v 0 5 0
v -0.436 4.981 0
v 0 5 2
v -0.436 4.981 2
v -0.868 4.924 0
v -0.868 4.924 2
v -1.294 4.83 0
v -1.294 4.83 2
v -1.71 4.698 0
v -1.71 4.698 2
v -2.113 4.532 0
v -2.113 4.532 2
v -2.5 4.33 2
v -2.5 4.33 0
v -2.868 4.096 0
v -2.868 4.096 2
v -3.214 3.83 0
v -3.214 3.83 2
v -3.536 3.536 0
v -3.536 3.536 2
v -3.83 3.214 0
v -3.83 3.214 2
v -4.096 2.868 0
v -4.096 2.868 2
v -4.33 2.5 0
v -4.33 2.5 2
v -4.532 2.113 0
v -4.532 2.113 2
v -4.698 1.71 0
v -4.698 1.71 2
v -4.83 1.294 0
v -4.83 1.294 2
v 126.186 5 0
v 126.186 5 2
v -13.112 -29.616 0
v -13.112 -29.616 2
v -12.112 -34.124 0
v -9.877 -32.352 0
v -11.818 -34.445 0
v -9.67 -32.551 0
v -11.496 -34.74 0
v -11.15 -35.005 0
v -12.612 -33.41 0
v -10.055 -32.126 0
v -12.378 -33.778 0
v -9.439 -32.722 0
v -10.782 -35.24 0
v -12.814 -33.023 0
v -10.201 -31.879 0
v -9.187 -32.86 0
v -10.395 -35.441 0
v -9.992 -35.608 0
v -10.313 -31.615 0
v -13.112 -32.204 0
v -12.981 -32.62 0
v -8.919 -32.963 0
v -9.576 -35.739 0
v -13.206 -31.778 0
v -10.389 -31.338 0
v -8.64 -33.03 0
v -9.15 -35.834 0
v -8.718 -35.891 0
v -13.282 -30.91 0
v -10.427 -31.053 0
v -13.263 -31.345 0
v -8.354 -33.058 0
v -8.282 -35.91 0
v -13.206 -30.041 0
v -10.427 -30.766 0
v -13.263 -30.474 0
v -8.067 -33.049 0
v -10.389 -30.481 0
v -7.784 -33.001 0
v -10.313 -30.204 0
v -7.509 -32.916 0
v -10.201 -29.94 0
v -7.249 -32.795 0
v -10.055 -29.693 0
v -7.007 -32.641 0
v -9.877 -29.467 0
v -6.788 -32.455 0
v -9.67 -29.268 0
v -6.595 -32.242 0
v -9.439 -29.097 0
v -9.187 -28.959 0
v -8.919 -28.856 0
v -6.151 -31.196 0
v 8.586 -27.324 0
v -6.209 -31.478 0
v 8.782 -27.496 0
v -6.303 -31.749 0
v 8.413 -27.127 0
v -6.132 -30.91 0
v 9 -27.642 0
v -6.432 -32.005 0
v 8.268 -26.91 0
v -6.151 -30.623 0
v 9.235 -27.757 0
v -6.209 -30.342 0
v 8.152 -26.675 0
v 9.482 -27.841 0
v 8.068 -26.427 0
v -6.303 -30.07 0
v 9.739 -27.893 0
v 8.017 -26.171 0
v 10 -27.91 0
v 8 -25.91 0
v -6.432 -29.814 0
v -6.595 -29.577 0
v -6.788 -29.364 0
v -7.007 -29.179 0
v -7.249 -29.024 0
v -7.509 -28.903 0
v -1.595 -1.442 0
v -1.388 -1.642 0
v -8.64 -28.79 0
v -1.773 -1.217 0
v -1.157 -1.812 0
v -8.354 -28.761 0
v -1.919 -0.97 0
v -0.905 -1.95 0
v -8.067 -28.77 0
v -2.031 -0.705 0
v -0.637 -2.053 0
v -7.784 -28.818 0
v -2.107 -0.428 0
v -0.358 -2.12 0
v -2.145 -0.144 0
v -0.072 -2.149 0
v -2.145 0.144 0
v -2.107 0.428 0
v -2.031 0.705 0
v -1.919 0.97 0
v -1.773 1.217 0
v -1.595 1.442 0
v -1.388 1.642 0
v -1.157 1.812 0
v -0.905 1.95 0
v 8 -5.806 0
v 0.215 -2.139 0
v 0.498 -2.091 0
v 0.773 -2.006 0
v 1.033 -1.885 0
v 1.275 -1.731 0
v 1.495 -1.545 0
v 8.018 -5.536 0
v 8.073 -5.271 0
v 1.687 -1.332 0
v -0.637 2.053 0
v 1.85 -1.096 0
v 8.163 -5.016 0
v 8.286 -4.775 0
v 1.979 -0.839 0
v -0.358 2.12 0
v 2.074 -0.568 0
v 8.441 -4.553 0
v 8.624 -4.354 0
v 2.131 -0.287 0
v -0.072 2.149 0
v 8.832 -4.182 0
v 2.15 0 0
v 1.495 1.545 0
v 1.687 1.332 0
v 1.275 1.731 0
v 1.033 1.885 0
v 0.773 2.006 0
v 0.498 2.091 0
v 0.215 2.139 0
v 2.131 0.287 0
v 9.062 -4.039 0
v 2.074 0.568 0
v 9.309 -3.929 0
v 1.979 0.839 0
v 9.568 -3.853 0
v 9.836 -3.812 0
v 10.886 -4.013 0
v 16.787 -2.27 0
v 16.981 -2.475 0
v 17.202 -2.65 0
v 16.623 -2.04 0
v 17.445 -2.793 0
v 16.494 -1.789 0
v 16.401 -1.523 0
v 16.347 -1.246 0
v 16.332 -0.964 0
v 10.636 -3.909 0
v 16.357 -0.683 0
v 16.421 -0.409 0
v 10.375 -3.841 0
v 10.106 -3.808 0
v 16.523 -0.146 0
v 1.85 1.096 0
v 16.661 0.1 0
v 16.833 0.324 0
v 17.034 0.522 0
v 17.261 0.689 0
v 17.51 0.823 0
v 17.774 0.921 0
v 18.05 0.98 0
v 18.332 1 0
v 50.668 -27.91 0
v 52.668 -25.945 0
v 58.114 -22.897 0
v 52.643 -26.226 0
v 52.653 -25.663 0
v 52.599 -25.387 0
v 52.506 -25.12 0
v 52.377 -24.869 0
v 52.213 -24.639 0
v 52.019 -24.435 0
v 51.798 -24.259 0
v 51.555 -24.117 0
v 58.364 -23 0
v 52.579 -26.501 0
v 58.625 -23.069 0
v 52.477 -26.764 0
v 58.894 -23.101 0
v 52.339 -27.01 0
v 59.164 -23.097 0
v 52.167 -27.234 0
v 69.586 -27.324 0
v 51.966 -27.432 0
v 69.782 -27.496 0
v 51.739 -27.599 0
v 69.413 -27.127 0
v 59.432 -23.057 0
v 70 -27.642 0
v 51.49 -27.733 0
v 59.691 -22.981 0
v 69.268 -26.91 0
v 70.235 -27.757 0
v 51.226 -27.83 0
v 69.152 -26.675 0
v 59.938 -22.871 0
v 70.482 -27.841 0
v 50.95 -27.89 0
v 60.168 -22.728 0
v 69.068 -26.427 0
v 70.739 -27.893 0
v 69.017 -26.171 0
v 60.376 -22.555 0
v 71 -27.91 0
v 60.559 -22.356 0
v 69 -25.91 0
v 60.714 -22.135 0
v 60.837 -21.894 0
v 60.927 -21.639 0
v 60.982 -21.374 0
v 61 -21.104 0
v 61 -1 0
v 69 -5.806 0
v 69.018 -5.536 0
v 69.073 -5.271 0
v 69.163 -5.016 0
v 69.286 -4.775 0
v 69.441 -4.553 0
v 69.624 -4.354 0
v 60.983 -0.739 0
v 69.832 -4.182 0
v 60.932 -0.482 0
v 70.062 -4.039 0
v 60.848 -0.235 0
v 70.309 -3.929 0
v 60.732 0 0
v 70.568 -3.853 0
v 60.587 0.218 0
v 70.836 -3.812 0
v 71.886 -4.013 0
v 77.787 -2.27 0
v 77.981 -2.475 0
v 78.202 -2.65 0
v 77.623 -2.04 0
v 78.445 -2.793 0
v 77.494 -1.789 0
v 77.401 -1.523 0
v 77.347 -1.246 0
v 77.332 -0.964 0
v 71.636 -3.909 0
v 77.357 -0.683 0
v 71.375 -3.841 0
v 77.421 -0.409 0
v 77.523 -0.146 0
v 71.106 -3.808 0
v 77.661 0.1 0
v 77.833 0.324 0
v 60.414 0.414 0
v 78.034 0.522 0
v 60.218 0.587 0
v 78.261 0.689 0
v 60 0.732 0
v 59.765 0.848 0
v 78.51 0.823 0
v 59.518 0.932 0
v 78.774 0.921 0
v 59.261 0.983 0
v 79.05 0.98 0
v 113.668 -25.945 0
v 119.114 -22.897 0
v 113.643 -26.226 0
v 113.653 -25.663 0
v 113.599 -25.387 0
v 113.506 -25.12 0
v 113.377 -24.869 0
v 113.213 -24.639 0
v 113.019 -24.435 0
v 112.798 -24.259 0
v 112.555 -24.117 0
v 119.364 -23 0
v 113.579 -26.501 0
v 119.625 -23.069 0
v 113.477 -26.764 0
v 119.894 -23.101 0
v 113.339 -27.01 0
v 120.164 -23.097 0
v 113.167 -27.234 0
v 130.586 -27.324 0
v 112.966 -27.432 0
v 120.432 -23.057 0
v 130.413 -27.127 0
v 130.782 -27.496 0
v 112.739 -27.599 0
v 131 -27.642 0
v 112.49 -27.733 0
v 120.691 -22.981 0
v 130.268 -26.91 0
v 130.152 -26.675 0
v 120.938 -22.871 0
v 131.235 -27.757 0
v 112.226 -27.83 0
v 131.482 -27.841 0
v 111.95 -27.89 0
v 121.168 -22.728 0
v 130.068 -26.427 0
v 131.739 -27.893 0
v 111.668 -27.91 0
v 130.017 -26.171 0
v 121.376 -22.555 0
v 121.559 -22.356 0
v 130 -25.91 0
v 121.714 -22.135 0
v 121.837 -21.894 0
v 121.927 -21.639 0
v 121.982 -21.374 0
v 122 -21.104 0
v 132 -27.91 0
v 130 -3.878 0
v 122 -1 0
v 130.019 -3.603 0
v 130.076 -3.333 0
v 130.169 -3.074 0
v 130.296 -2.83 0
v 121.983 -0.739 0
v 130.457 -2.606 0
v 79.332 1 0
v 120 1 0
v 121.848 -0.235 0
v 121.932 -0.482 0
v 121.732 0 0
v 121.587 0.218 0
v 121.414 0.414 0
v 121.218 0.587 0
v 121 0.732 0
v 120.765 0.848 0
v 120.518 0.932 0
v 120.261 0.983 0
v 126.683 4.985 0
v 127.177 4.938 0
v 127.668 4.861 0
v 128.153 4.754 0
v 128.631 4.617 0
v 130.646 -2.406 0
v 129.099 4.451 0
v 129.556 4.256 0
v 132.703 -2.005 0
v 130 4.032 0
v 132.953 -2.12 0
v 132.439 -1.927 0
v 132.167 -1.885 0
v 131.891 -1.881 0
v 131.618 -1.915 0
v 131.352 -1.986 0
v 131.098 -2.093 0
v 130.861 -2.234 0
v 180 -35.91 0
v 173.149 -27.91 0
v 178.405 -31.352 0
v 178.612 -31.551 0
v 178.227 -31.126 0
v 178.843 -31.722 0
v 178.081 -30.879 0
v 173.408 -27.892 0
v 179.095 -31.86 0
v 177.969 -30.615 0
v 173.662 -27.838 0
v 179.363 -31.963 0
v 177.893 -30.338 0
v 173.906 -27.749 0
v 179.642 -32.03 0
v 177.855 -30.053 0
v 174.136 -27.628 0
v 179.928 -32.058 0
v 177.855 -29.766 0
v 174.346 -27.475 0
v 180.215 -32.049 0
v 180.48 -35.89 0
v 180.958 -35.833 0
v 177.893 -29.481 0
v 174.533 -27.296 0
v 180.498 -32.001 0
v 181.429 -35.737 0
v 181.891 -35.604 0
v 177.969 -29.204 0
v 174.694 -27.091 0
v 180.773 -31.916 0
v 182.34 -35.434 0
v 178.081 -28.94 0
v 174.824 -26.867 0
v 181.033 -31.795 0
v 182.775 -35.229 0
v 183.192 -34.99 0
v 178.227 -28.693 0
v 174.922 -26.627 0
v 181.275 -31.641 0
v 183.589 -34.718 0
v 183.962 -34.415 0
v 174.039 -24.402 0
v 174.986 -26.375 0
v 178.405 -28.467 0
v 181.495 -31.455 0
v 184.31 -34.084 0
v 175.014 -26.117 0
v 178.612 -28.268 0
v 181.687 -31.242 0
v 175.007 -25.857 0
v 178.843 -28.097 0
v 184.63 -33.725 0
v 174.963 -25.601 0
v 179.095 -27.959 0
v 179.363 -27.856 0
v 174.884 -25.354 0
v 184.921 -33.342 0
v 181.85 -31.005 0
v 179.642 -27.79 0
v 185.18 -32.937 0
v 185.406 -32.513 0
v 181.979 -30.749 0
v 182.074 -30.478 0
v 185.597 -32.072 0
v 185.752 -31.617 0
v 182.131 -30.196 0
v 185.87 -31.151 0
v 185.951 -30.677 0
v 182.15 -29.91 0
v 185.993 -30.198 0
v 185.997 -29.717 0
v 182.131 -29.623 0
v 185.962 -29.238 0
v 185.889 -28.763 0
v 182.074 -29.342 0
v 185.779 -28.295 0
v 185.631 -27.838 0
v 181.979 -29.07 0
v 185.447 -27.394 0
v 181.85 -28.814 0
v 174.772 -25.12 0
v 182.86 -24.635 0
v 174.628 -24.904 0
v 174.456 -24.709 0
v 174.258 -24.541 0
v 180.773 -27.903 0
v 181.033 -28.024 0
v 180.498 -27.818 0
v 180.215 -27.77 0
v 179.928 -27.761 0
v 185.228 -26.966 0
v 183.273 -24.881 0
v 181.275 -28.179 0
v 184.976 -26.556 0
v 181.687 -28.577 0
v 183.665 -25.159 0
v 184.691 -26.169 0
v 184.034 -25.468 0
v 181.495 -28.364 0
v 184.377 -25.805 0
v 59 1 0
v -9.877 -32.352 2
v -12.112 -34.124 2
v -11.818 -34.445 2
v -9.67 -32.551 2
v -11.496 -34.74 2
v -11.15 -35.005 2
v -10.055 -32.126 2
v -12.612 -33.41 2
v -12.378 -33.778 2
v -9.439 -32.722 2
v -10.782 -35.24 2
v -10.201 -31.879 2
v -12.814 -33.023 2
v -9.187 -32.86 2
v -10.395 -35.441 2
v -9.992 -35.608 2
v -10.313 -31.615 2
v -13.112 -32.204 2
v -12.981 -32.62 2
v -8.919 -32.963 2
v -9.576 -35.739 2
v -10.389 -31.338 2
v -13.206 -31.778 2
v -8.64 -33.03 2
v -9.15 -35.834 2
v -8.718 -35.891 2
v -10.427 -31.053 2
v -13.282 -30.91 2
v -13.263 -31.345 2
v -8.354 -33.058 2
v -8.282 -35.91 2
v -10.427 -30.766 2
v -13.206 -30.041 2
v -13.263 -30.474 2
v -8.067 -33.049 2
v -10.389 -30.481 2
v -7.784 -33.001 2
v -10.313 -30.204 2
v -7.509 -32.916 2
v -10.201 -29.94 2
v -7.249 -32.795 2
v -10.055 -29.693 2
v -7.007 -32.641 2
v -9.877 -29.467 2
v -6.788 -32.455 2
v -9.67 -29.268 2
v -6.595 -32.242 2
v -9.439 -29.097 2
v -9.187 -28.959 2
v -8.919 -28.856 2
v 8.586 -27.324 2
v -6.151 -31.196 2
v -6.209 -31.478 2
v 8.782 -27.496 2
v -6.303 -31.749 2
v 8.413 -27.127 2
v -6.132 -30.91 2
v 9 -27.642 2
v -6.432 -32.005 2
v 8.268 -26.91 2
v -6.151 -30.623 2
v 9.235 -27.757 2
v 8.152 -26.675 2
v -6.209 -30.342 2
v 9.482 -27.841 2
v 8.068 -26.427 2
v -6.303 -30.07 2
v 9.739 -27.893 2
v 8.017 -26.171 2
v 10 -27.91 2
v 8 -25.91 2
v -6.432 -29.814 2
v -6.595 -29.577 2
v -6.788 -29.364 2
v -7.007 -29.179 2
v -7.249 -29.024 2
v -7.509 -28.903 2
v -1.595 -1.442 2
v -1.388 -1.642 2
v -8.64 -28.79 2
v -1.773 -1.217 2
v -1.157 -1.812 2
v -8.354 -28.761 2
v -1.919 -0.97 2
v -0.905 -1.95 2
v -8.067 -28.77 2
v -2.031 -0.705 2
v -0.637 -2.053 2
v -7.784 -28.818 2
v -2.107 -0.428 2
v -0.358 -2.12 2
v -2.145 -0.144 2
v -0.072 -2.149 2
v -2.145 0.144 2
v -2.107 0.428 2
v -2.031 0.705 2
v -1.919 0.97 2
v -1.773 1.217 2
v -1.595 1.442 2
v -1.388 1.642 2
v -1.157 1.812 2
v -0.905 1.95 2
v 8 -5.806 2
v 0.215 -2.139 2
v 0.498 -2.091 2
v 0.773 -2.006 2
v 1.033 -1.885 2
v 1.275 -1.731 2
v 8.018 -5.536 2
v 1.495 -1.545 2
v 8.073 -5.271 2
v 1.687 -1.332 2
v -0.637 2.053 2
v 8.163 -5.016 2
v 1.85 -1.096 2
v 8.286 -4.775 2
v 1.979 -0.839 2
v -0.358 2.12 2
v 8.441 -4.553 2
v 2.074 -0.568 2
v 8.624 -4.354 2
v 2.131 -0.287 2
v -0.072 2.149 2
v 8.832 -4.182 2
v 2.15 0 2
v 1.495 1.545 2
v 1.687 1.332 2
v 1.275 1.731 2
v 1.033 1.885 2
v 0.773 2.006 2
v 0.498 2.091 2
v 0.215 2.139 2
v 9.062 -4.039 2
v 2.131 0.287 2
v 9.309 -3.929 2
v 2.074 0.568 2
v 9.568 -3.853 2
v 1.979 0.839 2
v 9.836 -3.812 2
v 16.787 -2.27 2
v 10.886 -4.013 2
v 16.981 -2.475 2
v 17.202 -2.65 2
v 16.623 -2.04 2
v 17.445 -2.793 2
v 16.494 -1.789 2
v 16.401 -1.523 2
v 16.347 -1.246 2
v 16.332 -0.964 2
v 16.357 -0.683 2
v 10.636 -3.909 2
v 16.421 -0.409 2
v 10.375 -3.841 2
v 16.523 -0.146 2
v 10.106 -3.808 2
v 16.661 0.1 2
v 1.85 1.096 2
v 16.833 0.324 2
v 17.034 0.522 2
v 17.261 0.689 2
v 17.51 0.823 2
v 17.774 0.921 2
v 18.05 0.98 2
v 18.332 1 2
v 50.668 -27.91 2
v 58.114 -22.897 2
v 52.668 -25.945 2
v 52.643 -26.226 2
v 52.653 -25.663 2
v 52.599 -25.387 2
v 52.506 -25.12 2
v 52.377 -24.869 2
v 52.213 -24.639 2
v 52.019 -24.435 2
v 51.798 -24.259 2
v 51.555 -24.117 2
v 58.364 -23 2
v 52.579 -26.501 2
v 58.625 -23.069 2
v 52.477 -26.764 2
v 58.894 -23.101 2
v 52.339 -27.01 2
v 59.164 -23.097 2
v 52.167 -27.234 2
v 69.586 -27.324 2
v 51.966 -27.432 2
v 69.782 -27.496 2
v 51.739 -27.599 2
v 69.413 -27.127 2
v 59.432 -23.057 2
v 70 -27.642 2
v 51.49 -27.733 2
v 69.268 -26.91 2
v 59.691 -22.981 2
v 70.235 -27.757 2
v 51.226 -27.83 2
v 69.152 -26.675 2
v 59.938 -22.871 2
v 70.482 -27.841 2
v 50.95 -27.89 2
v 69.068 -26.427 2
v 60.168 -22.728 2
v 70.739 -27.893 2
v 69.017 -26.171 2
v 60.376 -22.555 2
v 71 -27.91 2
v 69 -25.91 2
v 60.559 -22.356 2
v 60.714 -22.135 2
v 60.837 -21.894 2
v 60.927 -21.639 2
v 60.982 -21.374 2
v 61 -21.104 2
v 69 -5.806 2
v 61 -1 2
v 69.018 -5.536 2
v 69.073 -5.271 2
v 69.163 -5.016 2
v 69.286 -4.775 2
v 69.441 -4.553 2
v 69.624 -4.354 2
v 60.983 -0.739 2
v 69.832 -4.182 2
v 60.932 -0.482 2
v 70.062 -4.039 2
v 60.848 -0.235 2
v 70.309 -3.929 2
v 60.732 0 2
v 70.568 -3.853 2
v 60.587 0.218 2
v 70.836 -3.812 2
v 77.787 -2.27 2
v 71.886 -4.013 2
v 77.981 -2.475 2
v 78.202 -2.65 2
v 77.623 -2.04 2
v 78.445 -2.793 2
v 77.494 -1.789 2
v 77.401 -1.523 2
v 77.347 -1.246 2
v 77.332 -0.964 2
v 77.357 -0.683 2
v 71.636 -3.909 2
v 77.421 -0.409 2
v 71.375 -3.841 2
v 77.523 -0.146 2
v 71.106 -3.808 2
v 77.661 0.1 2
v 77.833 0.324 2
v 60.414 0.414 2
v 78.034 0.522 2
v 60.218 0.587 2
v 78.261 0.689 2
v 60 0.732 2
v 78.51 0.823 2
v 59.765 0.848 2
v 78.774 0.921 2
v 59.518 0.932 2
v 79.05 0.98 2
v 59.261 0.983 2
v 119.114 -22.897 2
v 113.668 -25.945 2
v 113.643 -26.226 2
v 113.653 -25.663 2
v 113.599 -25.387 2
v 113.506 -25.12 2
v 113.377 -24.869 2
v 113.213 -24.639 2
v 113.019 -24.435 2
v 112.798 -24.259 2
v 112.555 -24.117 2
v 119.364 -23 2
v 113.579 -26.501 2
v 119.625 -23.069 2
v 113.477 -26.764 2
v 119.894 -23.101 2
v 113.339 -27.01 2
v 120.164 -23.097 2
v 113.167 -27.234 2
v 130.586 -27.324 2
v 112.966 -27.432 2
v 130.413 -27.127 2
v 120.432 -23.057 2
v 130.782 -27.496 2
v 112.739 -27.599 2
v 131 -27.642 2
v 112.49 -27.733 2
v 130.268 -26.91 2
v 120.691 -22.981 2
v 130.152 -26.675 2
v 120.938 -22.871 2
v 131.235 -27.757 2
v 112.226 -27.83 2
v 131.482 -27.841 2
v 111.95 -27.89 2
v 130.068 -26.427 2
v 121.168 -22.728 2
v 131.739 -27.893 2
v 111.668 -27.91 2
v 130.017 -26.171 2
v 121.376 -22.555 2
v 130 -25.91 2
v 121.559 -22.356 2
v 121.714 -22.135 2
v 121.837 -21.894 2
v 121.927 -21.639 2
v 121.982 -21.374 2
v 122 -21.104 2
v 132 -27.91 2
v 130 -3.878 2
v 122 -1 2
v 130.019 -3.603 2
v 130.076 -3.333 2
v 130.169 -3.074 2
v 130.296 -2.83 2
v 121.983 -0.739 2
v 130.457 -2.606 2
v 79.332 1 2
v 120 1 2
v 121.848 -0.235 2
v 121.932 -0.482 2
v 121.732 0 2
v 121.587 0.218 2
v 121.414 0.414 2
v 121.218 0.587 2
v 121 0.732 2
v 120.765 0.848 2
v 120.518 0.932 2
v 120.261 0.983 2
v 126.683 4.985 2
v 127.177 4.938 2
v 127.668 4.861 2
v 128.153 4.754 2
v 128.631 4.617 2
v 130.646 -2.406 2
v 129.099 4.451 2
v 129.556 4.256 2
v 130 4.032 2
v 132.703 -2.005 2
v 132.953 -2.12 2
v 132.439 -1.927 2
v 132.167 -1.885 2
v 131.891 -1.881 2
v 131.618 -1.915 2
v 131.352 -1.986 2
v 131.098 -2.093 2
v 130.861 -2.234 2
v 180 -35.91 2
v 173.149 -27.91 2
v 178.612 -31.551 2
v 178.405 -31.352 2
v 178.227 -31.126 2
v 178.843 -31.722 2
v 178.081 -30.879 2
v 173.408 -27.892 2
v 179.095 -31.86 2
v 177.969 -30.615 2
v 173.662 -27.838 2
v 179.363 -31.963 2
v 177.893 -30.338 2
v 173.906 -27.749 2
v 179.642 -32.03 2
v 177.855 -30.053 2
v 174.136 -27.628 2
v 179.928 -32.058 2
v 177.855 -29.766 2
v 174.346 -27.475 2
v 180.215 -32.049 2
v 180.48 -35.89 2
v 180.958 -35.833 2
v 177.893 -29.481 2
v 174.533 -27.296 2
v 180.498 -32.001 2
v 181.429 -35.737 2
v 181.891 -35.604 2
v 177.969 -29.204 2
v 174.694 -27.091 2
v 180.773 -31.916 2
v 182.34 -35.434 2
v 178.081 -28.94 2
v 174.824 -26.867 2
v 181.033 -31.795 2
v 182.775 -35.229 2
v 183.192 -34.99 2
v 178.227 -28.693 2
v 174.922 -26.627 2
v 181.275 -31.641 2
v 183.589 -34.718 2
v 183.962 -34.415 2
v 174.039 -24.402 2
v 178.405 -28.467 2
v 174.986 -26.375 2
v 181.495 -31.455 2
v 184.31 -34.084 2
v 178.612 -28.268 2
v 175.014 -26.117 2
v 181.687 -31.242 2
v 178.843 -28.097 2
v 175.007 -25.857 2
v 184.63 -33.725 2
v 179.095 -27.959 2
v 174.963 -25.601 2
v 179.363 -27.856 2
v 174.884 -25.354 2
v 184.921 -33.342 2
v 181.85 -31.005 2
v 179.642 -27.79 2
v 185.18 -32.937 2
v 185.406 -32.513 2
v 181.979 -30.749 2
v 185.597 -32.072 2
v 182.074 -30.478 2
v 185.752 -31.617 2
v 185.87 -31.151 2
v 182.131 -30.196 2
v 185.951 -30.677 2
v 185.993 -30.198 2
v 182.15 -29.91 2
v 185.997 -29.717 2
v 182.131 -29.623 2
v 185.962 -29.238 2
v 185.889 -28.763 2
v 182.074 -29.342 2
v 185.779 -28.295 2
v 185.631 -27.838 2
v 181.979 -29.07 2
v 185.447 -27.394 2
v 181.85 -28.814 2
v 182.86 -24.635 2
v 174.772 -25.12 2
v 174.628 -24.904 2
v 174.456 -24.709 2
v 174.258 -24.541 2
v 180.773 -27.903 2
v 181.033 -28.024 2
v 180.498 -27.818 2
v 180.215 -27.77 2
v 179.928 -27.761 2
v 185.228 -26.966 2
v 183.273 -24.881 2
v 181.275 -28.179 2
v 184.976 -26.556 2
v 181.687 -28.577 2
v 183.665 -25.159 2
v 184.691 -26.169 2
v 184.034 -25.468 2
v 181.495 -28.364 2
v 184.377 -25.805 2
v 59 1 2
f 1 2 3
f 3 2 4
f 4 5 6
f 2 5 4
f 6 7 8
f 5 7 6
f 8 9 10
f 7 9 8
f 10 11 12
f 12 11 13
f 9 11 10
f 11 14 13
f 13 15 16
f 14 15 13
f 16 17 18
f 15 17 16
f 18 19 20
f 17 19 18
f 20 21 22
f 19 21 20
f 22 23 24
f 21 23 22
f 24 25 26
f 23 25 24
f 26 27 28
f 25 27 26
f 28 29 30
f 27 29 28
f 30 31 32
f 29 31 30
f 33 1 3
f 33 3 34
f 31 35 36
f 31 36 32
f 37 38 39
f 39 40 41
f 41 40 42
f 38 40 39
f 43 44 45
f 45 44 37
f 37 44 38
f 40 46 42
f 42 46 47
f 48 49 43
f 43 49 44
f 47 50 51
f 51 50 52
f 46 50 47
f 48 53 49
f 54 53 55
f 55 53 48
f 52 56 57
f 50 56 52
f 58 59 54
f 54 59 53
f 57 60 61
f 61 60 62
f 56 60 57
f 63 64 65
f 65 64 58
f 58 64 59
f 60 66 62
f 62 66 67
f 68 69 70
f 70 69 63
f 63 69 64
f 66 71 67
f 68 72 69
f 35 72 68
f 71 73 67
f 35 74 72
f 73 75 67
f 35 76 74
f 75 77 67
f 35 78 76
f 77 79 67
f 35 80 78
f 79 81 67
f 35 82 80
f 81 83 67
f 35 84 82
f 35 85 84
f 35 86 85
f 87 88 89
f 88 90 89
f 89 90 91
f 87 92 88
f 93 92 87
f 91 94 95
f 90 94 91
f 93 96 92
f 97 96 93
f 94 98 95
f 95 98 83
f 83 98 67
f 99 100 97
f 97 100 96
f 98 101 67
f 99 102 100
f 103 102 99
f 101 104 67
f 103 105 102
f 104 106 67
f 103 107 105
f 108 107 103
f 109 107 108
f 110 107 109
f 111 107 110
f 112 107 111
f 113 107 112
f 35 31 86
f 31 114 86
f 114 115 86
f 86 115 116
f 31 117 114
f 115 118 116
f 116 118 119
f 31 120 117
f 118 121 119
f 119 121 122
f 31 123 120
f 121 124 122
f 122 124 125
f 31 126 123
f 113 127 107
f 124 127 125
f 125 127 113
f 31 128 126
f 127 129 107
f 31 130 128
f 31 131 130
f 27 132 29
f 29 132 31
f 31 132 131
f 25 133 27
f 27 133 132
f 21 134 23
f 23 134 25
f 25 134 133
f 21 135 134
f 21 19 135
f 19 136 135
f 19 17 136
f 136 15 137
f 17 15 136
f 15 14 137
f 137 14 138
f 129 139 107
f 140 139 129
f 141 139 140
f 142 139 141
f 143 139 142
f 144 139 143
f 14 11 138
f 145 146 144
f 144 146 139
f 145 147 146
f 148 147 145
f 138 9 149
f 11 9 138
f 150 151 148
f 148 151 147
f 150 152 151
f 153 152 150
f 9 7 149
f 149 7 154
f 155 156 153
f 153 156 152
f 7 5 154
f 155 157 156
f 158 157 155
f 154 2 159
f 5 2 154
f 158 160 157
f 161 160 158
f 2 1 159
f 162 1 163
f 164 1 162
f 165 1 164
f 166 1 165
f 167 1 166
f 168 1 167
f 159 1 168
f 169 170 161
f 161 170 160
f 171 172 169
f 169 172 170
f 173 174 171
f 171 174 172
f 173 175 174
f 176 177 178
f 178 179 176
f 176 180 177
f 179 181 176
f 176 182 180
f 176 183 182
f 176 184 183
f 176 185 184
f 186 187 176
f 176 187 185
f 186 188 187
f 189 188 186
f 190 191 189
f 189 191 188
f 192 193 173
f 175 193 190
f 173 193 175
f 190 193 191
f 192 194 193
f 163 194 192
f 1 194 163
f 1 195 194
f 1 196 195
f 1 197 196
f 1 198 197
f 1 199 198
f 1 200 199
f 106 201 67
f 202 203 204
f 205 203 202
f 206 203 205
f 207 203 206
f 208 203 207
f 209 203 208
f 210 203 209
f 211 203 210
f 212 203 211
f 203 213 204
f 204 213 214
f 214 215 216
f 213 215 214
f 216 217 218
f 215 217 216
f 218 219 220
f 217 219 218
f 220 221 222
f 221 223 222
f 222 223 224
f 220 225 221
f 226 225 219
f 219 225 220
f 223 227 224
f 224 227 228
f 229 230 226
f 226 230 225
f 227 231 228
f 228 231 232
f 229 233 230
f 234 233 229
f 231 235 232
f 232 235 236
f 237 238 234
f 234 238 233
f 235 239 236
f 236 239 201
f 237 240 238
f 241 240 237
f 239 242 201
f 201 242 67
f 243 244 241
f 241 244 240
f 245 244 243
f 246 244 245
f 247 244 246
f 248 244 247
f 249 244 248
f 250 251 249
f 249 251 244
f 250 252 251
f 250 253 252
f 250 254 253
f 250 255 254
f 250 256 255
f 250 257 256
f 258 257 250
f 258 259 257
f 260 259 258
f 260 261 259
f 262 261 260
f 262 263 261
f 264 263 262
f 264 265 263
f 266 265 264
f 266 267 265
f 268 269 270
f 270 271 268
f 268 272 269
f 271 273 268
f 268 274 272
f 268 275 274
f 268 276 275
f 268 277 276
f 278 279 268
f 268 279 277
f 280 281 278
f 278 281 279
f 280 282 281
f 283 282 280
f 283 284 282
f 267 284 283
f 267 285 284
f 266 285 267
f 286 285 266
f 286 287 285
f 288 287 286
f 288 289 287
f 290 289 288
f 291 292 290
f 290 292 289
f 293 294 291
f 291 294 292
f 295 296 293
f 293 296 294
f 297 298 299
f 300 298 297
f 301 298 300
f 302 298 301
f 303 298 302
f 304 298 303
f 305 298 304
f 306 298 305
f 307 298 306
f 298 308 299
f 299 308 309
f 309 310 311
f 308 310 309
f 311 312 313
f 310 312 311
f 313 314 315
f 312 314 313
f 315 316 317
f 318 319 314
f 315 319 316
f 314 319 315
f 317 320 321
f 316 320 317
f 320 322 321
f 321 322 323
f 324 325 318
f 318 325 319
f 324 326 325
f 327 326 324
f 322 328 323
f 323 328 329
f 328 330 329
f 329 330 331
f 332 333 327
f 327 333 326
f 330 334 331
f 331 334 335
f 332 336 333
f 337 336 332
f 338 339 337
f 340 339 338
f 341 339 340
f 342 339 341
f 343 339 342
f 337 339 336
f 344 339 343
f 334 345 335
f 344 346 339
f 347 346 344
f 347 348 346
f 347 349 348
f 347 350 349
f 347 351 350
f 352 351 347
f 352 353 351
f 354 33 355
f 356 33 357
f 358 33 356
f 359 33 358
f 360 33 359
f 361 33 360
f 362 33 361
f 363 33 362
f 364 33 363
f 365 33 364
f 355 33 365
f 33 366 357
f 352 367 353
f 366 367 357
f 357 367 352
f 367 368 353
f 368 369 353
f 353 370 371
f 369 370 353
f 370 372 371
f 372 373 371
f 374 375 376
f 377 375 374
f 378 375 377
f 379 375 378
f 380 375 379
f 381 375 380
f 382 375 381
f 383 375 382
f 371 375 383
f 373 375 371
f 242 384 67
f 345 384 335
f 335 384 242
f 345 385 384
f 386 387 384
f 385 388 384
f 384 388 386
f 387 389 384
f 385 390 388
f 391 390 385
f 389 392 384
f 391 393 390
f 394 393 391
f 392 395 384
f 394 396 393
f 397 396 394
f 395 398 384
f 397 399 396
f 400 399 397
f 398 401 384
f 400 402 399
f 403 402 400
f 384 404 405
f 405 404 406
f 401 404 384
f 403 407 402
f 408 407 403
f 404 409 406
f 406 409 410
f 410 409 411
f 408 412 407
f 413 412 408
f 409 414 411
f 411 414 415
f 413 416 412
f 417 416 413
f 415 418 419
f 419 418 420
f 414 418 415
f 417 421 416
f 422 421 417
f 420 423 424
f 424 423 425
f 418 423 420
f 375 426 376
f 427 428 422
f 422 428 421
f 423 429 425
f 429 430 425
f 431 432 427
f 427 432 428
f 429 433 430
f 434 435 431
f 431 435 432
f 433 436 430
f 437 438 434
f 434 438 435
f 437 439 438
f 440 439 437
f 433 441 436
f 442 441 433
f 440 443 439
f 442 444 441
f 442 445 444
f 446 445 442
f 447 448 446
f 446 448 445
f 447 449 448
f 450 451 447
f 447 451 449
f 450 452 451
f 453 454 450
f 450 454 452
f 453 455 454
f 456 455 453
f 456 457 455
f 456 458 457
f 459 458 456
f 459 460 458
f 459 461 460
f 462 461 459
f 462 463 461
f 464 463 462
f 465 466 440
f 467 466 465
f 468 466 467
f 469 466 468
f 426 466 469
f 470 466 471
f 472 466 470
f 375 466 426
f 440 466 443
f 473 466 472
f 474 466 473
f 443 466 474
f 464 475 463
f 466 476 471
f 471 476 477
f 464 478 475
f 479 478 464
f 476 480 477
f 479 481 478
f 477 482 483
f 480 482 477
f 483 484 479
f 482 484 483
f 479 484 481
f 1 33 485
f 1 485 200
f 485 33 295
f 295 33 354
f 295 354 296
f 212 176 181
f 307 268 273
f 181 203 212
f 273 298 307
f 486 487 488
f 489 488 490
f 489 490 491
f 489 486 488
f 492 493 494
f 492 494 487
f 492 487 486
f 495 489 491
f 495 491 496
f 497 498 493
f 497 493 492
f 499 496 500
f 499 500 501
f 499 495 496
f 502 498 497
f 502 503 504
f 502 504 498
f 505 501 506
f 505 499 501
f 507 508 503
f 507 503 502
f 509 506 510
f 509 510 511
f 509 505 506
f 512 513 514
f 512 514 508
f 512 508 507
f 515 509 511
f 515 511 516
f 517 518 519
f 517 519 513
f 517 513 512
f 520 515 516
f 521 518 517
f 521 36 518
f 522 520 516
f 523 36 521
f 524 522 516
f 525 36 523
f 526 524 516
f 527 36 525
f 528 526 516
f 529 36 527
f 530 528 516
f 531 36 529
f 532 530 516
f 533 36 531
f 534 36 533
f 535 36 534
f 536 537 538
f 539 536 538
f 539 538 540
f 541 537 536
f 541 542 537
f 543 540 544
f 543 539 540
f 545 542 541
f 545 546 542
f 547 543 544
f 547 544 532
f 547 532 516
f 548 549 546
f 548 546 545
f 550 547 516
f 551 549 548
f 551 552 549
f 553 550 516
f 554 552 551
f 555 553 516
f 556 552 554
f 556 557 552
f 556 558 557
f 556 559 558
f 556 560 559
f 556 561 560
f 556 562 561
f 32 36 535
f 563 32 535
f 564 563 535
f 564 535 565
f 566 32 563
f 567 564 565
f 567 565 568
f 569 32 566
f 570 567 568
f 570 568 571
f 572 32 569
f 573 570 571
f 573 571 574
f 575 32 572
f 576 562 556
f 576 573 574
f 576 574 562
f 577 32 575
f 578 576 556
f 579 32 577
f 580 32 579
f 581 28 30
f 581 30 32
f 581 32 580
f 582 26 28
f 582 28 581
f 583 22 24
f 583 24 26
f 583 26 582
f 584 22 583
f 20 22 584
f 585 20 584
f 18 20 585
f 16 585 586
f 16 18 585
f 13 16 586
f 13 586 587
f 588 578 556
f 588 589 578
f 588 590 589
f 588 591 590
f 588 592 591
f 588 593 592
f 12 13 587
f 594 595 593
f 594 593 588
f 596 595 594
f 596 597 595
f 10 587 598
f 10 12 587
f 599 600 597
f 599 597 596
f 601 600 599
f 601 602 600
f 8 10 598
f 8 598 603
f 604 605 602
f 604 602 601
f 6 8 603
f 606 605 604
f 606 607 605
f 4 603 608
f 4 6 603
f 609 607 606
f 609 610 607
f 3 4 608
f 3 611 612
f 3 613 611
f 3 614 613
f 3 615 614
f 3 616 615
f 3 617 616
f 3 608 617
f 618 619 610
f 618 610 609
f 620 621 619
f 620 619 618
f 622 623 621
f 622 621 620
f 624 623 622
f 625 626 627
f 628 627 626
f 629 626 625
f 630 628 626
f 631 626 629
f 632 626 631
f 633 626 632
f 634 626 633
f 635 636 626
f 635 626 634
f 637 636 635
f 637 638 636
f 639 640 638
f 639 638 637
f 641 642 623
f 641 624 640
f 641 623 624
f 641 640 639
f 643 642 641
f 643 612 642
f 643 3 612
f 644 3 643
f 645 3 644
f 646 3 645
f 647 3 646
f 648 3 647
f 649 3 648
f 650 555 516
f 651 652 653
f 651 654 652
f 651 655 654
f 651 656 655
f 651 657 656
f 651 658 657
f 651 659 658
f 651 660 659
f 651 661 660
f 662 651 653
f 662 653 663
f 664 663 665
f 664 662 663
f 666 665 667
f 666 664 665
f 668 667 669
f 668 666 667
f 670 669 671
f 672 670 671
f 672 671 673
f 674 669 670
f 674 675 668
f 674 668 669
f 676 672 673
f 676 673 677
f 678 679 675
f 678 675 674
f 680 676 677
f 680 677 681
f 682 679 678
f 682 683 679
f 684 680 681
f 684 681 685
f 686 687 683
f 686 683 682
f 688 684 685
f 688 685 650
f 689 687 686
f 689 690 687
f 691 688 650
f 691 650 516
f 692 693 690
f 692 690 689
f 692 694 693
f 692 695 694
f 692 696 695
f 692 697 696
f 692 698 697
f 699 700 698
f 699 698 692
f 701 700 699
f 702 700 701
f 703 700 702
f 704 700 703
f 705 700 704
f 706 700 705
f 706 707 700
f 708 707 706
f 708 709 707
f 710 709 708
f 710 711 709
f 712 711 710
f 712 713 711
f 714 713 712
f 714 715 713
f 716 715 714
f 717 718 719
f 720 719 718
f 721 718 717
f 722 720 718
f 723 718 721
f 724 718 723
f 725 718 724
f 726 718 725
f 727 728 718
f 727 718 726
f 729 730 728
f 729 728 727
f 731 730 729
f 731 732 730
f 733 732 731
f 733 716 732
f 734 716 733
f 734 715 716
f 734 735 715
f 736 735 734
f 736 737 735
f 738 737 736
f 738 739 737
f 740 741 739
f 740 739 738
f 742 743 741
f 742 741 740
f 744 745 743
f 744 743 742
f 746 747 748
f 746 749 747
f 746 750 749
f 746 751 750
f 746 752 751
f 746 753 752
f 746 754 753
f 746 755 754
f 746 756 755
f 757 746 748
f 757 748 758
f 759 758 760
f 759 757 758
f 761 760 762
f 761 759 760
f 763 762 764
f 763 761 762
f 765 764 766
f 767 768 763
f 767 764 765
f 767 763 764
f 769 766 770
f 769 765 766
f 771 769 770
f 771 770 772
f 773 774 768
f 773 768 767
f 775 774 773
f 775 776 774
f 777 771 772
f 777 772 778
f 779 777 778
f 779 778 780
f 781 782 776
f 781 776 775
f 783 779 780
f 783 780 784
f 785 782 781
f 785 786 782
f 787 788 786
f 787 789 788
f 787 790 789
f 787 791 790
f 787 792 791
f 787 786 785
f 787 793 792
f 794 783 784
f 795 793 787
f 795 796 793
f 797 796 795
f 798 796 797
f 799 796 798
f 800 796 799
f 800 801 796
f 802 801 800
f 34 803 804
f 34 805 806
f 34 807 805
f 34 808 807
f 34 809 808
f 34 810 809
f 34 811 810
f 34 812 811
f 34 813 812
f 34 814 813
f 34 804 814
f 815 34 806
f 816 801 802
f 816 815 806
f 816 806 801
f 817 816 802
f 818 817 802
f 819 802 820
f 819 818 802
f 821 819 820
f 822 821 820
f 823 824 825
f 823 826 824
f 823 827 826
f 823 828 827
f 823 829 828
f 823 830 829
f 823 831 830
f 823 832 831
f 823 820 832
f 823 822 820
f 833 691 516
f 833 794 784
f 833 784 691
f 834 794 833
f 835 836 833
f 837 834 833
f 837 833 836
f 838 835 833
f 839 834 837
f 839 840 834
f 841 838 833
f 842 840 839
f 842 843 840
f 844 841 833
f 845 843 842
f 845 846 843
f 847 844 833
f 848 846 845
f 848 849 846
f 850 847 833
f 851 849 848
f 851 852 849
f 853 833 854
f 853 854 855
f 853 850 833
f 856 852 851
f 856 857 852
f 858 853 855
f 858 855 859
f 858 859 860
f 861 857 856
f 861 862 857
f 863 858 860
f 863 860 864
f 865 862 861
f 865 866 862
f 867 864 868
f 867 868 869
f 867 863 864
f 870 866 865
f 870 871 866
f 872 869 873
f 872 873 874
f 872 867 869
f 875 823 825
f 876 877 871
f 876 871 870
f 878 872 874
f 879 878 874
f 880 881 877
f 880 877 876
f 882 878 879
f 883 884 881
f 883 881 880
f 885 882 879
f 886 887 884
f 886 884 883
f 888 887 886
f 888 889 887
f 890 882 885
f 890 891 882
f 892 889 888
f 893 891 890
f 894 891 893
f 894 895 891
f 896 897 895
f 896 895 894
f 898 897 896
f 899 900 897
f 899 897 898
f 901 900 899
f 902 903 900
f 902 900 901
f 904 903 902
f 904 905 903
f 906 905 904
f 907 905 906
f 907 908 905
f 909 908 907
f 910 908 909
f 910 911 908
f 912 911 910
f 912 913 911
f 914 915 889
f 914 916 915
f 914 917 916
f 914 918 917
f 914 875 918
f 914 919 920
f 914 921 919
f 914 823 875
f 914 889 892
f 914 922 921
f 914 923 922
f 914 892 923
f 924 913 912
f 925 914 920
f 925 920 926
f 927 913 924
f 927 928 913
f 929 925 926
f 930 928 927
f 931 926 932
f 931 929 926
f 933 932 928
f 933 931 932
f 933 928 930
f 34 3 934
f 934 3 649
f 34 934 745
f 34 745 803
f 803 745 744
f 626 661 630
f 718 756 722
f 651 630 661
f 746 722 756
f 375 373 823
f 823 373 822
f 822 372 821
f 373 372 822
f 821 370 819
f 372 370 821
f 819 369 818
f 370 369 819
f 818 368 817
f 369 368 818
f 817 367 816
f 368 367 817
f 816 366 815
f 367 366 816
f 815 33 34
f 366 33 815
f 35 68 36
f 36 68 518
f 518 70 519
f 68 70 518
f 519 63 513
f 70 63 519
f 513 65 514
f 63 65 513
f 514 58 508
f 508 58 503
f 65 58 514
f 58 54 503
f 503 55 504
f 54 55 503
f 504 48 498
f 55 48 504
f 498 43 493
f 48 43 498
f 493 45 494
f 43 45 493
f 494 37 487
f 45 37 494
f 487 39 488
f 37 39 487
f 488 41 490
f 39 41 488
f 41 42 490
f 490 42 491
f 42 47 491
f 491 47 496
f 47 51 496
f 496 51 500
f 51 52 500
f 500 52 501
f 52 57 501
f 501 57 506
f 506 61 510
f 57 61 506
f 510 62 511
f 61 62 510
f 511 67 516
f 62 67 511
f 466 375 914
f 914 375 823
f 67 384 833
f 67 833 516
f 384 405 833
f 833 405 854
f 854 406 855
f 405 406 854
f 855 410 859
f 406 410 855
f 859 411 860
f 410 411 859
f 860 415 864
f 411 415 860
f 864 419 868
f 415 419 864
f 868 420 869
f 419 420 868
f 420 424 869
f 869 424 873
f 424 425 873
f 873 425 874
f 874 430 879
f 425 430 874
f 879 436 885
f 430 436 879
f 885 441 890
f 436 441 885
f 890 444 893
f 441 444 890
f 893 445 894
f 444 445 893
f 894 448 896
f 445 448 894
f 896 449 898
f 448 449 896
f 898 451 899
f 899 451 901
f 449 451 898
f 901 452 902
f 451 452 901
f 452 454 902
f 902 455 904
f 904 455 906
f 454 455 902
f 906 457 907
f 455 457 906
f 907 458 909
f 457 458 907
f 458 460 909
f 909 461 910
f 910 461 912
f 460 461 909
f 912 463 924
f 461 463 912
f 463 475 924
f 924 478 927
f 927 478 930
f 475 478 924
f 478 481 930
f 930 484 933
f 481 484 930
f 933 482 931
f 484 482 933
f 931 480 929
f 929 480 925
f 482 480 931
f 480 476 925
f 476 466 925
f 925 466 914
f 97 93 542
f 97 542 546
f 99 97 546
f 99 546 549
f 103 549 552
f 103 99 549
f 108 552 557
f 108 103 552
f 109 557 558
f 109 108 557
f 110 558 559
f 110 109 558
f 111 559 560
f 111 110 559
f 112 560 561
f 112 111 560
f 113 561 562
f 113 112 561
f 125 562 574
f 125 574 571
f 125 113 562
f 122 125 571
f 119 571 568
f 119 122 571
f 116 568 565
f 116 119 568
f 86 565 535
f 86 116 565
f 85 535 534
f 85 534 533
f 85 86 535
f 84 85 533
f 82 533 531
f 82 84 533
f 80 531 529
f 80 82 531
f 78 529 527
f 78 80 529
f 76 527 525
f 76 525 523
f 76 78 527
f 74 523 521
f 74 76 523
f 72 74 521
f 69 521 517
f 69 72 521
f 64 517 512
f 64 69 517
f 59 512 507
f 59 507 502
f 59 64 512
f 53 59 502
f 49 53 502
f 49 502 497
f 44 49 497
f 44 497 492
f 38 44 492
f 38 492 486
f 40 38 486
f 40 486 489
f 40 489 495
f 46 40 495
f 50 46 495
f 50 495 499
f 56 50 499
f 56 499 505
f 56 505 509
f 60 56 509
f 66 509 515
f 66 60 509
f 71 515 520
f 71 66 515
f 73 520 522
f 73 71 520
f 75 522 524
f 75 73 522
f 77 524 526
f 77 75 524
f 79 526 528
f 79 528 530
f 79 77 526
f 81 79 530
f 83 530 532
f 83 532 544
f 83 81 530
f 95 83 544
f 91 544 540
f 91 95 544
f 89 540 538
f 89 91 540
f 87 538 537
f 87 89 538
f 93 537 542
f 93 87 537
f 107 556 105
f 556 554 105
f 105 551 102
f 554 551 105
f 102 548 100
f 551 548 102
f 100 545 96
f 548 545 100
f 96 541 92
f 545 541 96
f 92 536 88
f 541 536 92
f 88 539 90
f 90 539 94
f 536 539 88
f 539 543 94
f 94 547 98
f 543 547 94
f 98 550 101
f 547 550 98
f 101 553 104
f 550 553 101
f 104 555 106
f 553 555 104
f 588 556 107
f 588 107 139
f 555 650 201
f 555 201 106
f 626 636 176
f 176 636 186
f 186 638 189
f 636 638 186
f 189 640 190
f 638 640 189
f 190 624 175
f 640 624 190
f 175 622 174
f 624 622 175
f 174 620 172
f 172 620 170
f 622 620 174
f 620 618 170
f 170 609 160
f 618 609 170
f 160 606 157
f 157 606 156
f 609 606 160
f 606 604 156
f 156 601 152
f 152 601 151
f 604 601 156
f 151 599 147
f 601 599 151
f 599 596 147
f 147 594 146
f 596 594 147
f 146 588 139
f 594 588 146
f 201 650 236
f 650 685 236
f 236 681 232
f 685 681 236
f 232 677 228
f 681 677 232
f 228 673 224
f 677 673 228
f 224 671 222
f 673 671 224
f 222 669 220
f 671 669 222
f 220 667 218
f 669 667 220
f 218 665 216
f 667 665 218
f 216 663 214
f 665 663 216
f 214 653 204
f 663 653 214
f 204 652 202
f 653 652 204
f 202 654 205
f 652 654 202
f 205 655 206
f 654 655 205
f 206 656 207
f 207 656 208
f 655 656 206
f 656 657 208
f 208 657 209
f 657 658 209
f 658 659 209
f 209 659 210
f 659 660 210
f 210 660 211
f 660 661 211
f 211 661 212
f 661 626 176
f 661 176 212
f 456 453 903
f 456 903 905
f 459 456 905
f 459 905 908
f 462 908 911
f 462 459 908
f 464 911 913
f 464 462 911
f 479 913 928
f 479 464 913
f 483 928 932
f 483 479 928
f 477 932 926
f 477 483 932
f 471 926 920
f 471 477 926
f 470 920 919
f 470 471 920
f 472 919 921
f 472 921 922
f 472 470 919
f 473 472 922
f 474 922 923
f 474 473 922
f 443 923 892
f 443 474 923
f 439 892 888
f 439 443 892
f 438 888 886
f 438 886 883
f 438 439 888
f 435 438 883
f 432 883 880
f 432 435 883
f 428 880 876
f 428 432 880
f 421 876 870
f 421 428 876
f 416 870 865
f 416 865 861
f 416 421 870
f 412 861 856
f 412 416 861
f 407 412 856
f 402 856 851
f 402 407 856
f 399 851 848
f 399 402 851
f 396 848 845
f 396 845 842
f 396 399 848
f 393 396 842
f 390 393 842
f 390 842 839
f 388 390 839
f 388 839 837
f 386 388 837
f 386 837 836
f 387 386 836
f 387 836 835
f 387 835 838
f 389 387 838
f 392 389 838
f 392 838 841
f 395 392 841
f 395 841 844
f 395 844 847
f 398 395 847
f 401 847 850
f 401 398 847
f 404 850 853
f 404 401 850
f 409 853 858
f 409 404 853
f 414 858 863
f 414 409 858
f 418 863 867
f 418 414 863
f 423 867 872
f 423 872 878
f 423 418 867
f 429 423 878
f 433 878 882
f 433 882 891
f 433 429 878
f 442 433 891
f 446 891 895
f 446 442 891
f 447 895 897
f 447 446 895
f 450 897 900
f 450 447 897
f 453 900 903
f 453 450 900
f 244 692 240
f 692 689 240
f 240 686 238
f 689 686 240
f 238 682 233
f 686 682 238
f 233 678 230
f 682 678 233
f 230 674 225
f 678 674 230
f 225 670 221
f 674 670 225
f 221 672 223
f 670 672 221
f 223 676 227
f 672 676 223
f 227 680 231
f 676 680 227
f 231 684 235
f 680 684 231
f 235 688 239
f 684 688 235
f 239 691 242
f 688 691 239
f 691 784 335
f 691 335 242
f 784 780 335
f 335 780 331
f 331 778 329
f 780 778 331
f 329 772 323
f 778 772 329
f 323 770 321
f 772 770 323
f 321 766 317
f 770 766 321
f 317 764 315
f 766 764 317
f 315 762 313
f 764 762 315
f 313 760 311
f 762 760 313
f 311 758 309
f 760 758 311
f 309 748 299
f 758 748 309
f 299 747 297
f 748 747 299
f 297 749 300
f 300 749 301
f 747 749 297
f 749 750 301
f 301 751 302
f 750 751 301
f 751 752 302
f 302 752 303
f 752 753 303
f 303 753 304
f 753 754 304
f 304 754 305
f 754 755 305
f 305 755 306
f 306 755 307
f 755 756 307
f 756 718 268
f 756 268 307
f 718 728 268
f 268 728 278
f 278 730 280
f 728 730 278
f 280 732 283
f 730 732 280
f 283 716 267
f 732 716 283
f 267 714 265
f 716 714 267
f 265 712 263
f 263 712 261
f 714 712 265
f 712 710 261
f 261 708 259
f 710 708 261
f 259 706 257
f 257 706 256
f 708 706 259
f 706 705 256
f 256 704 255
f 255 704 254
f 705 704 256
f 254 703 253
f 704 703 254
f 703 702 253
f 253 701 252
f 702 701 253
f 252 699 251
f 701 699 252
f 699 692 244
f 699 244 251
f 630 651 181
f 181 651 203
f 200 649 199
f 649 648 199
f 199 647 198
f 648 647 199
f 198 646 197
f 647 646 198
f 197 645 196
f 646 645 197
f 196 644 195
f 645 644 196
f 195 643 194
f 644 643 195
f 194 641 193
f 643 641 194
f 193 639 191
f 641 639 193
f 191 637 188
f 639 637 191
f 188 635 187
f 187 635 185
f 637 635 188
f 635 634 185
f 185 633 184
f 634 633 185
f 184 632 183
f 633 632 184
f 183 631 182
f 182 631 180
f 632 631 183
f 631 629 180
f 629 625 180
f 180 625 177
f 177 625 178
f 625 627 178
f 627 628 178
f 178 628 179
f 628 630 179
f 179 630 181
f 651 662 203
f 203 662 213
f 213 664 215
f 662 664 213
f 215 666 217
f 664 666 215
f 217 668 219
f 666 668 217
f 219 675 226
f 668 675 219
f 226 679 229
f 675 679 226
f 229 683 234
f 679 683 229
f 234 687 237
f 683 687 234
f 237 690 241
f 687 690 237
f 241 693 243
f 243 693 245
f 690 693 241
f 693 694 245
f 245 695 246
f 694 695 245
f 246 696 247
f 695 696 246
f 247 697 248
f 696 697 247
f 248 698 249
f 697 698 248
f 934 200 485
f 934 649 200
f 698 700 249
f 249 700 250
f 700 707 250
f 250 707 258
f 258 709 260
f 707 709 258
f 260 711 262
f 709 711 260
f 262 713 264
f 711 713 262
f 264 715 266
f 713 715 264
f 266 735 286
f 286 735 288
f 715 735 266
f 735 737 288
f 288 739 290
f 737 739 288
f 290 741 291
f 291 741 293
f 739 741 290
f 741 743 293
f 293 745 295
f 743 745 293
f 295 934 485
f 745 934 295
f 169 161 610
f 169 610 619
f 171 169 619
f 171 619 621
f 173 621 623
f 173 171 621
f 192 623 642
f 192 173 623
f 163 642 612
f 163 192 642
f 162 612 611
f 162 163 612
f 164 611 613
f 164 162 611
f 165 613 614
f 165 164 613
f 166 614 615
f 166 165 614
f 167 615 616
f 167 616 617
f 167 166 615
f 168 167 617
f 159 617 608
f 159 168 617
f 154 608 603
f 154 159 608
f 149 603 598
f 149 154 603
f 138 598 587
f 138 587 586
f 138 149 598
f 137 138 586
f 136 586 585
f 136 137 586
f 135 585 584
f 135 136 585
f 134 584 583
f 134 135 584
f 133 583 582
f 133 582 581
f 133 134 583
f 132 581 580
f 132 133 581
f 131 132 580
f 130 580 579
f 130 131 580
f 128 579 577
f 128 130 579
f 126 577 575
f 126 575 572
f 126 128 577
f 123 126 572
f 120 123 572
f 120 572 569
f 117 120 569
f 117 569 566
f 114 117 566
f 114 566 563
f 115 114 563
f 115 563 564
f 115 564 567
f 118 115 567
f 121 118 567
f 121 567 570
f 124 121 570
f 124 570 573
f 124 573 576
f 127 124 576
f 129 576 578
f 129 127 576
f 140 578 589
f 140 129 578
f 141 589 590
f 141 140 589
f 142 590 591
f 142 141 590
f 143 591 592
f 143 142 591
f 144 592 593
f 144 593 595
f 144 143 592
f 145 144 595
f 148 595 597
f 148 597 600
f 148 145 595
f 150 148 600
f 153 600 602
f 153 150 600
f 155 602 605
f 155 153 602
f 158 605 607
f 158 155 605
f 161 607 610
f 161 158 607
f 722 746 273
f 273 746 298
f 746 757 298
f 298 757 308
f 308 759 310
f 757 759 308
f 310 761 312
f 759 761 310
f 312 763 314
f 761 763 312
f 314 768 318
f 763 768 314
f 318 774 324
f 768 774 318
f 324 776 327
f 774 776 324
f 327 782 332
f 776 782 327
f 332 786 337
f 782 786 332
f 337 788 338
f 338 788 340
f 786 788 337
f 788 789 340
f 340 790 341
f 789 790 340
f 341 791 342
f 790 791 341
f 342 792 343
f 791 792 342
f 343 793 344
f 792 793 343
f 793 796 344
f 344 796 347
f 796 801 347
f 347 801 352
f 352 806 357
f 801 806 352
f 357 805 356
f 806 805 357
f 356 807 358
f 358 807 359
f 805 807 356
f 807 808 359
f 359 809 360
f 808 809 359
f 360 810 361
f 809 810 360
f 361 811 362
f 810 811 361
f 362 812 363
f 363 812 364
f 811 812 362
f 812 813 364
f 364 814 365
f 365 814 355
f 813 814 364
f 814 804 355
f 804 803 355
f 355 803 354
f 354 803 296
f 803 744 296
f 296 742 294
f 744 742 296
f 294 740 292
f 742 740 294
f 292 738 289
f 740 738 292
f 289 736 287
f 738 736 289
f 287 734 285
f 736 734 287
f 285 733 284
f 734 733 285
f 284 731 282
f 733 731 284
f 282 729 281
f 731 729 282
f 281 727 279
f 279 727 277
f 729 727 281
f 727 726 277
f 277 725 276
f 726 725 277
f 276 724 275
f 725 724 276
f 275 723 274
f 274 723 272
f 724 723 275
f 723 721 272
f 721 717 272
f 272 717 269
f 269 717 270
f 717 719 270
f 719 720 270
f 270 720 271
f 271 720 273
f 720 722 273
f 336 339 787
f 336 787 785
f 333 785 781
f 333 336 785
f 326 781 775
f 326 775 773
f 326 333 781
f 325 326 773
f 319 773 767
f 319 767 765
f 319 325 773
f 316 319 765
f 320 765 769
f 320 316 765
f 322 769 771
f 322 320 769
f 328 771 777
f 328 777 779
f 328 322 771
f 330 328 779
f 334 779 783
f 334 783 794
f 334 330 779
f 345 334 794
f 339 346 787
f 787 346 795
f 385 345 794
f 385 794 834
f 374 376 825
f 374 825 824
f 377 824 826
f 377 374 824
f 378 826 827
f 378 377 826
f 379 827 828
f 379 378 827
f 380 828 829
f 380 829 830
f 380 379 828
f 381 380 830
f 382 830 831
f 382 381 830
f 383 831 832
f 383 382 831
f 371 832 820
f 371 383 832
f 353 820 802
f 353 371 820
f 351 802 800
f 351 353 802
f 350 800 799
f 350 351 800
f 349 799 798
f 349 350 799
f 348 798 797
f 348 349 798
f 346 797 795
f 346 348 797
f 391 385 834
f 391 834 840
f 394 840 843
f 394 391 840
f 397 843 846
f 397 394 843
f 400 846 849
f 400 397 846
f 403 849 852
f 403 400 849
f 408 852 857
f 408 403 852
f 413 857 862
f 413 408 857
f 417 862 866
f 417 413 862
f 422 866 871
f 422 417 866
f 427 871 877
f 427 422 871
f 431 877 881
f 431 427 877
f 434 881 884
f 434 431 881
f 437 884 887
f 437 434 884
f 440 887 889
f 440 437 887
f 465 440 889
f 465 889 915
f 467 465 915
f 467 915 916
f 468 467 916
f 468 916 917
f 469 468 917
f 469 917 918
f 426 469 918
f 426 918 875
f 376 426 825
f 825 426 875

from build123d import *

# Parameters (mm, degrees)
SKETCH_R            = 2.15
PAD_DEPTH           = 2
POCKET_DEPTH        = 0.001
POCKET_DEPTH_BACK   = 2.001
LINEARPATTERN_COUNT = 2
LINEARPATTERN_PITCH = 61


with BuildPart() as part:
    # Sketch → Pad (new body)
    with BuildSketch(Plane.XY):
        with BuildLine():
            ThreePointArc((0, 5), (-3.043807, 3.966767), (-4.829629, 1.294095))
            Line((-13.111839, -29.615531), (-4.829629, 1.294095))
            ThreePointArc((-13.111839, -29.615531), (-12.248976, -33.953434), (-8.282209, -35.909626))
            Line((180, -35.909626), (-8.282209, -35.909626))
            ThreePointArc((180, -35.909626), (185.815743, -31.385138), (182.860399, -24.635338))
            Line((182.860399, -24.635338), (130, 4.032384))
            ThreePointArc((130, 4.032384), (128.153484, 4.754324), (126.186135, 5))
            Line((0, 5), (126.186135, 5))
        make_face()
        Circle(SKETCH_R, mode=Mode.SUBTRACT)
        with Locations((180, -29.909626)):
            Circle(SKETCH_R, mode=Mode.SUBTRACT)
        with Locations((-8.282209, -30.909626)):
            Circle(SKETCH_R, mode=Mode.SUBTRACT)
        with BuildLine():
            ThreePointArc((173.149083, -27.909626), (174.958635, -26.501845), (174.039088, -24.401663))
            Line((132.953466, -2.119743), (174.039088, -24.401663))
            ThreePointArc((132.953466, -2.119743), (130.976998, -2.159274), (130, -3.877839))
            Line((130, -25.909626), (130, -3.877839))
            ThreePointArc((130, -25.909626), (130.585786, -27.32384), (132, -27.909626))
            Line((132, -27.909626), (173.149083, -27.909626))
        make_face(mode=Mode.SUBTRACT)
    extrude(amount=PAD_DEPTH)

    # Sketch_1 → Pocket (cut, two sides)
    with BuildSketch(Plane.XY) as pocket_sk:
        with BuildLine():
            Line((10.886302, -4.012607), (51.55478, -24.116733))
            ThreePointArc((50.668478, -27.909626), (52.616013, -26.364716), (51.55478, -24.116733))
            Line((50.668478, -27.909626), (10, -27.909626))
            ThreePointArc((8, -25.909626), (8.585786, -27.32384), (10, -27.909626))
            Line((8, -25.909626), (8, -5.805501))
            ThreePointArc((10.886302, -4.012607), (8.944681, -4.106589), (8, -5.805501))
        make_face()
        with BuildLine():
            Line((17.44522, -2.792894), (58.113698, -22.897019))
            ThreePointArc((58.113698, -22.897019), (60.055319, -22.803037), (61, -21.104125))
            Line((61, -21.104125), (61, -1))
            ThreePointArc((61, -1), (60.414214, 0.414214), (59, 1))
            Line((59, 1), (18.331522, 1))
            ThreePointArc((18.331522, 1), (16.383987, -0.544911), (17.44522, -2.792894))
        make_face()
    pocket = extrude(amount=-POCKET_DEPTH, mode=Mode.SUBTRACT) + extrude(pocket_sk.sketch, amount=POCKET_DEPTH_BACK, mode=Mode.SUBTRACT)

    # LinearPattern: Pocket ×2
    with Locations(*[(i * LINEARPATTERN_PITCH, 0, 0) for i in range(1, LINEARPATTERN_COUNT)]):
        add(pocket, mode=Mode.SUBTRACT)


solid = part.part
